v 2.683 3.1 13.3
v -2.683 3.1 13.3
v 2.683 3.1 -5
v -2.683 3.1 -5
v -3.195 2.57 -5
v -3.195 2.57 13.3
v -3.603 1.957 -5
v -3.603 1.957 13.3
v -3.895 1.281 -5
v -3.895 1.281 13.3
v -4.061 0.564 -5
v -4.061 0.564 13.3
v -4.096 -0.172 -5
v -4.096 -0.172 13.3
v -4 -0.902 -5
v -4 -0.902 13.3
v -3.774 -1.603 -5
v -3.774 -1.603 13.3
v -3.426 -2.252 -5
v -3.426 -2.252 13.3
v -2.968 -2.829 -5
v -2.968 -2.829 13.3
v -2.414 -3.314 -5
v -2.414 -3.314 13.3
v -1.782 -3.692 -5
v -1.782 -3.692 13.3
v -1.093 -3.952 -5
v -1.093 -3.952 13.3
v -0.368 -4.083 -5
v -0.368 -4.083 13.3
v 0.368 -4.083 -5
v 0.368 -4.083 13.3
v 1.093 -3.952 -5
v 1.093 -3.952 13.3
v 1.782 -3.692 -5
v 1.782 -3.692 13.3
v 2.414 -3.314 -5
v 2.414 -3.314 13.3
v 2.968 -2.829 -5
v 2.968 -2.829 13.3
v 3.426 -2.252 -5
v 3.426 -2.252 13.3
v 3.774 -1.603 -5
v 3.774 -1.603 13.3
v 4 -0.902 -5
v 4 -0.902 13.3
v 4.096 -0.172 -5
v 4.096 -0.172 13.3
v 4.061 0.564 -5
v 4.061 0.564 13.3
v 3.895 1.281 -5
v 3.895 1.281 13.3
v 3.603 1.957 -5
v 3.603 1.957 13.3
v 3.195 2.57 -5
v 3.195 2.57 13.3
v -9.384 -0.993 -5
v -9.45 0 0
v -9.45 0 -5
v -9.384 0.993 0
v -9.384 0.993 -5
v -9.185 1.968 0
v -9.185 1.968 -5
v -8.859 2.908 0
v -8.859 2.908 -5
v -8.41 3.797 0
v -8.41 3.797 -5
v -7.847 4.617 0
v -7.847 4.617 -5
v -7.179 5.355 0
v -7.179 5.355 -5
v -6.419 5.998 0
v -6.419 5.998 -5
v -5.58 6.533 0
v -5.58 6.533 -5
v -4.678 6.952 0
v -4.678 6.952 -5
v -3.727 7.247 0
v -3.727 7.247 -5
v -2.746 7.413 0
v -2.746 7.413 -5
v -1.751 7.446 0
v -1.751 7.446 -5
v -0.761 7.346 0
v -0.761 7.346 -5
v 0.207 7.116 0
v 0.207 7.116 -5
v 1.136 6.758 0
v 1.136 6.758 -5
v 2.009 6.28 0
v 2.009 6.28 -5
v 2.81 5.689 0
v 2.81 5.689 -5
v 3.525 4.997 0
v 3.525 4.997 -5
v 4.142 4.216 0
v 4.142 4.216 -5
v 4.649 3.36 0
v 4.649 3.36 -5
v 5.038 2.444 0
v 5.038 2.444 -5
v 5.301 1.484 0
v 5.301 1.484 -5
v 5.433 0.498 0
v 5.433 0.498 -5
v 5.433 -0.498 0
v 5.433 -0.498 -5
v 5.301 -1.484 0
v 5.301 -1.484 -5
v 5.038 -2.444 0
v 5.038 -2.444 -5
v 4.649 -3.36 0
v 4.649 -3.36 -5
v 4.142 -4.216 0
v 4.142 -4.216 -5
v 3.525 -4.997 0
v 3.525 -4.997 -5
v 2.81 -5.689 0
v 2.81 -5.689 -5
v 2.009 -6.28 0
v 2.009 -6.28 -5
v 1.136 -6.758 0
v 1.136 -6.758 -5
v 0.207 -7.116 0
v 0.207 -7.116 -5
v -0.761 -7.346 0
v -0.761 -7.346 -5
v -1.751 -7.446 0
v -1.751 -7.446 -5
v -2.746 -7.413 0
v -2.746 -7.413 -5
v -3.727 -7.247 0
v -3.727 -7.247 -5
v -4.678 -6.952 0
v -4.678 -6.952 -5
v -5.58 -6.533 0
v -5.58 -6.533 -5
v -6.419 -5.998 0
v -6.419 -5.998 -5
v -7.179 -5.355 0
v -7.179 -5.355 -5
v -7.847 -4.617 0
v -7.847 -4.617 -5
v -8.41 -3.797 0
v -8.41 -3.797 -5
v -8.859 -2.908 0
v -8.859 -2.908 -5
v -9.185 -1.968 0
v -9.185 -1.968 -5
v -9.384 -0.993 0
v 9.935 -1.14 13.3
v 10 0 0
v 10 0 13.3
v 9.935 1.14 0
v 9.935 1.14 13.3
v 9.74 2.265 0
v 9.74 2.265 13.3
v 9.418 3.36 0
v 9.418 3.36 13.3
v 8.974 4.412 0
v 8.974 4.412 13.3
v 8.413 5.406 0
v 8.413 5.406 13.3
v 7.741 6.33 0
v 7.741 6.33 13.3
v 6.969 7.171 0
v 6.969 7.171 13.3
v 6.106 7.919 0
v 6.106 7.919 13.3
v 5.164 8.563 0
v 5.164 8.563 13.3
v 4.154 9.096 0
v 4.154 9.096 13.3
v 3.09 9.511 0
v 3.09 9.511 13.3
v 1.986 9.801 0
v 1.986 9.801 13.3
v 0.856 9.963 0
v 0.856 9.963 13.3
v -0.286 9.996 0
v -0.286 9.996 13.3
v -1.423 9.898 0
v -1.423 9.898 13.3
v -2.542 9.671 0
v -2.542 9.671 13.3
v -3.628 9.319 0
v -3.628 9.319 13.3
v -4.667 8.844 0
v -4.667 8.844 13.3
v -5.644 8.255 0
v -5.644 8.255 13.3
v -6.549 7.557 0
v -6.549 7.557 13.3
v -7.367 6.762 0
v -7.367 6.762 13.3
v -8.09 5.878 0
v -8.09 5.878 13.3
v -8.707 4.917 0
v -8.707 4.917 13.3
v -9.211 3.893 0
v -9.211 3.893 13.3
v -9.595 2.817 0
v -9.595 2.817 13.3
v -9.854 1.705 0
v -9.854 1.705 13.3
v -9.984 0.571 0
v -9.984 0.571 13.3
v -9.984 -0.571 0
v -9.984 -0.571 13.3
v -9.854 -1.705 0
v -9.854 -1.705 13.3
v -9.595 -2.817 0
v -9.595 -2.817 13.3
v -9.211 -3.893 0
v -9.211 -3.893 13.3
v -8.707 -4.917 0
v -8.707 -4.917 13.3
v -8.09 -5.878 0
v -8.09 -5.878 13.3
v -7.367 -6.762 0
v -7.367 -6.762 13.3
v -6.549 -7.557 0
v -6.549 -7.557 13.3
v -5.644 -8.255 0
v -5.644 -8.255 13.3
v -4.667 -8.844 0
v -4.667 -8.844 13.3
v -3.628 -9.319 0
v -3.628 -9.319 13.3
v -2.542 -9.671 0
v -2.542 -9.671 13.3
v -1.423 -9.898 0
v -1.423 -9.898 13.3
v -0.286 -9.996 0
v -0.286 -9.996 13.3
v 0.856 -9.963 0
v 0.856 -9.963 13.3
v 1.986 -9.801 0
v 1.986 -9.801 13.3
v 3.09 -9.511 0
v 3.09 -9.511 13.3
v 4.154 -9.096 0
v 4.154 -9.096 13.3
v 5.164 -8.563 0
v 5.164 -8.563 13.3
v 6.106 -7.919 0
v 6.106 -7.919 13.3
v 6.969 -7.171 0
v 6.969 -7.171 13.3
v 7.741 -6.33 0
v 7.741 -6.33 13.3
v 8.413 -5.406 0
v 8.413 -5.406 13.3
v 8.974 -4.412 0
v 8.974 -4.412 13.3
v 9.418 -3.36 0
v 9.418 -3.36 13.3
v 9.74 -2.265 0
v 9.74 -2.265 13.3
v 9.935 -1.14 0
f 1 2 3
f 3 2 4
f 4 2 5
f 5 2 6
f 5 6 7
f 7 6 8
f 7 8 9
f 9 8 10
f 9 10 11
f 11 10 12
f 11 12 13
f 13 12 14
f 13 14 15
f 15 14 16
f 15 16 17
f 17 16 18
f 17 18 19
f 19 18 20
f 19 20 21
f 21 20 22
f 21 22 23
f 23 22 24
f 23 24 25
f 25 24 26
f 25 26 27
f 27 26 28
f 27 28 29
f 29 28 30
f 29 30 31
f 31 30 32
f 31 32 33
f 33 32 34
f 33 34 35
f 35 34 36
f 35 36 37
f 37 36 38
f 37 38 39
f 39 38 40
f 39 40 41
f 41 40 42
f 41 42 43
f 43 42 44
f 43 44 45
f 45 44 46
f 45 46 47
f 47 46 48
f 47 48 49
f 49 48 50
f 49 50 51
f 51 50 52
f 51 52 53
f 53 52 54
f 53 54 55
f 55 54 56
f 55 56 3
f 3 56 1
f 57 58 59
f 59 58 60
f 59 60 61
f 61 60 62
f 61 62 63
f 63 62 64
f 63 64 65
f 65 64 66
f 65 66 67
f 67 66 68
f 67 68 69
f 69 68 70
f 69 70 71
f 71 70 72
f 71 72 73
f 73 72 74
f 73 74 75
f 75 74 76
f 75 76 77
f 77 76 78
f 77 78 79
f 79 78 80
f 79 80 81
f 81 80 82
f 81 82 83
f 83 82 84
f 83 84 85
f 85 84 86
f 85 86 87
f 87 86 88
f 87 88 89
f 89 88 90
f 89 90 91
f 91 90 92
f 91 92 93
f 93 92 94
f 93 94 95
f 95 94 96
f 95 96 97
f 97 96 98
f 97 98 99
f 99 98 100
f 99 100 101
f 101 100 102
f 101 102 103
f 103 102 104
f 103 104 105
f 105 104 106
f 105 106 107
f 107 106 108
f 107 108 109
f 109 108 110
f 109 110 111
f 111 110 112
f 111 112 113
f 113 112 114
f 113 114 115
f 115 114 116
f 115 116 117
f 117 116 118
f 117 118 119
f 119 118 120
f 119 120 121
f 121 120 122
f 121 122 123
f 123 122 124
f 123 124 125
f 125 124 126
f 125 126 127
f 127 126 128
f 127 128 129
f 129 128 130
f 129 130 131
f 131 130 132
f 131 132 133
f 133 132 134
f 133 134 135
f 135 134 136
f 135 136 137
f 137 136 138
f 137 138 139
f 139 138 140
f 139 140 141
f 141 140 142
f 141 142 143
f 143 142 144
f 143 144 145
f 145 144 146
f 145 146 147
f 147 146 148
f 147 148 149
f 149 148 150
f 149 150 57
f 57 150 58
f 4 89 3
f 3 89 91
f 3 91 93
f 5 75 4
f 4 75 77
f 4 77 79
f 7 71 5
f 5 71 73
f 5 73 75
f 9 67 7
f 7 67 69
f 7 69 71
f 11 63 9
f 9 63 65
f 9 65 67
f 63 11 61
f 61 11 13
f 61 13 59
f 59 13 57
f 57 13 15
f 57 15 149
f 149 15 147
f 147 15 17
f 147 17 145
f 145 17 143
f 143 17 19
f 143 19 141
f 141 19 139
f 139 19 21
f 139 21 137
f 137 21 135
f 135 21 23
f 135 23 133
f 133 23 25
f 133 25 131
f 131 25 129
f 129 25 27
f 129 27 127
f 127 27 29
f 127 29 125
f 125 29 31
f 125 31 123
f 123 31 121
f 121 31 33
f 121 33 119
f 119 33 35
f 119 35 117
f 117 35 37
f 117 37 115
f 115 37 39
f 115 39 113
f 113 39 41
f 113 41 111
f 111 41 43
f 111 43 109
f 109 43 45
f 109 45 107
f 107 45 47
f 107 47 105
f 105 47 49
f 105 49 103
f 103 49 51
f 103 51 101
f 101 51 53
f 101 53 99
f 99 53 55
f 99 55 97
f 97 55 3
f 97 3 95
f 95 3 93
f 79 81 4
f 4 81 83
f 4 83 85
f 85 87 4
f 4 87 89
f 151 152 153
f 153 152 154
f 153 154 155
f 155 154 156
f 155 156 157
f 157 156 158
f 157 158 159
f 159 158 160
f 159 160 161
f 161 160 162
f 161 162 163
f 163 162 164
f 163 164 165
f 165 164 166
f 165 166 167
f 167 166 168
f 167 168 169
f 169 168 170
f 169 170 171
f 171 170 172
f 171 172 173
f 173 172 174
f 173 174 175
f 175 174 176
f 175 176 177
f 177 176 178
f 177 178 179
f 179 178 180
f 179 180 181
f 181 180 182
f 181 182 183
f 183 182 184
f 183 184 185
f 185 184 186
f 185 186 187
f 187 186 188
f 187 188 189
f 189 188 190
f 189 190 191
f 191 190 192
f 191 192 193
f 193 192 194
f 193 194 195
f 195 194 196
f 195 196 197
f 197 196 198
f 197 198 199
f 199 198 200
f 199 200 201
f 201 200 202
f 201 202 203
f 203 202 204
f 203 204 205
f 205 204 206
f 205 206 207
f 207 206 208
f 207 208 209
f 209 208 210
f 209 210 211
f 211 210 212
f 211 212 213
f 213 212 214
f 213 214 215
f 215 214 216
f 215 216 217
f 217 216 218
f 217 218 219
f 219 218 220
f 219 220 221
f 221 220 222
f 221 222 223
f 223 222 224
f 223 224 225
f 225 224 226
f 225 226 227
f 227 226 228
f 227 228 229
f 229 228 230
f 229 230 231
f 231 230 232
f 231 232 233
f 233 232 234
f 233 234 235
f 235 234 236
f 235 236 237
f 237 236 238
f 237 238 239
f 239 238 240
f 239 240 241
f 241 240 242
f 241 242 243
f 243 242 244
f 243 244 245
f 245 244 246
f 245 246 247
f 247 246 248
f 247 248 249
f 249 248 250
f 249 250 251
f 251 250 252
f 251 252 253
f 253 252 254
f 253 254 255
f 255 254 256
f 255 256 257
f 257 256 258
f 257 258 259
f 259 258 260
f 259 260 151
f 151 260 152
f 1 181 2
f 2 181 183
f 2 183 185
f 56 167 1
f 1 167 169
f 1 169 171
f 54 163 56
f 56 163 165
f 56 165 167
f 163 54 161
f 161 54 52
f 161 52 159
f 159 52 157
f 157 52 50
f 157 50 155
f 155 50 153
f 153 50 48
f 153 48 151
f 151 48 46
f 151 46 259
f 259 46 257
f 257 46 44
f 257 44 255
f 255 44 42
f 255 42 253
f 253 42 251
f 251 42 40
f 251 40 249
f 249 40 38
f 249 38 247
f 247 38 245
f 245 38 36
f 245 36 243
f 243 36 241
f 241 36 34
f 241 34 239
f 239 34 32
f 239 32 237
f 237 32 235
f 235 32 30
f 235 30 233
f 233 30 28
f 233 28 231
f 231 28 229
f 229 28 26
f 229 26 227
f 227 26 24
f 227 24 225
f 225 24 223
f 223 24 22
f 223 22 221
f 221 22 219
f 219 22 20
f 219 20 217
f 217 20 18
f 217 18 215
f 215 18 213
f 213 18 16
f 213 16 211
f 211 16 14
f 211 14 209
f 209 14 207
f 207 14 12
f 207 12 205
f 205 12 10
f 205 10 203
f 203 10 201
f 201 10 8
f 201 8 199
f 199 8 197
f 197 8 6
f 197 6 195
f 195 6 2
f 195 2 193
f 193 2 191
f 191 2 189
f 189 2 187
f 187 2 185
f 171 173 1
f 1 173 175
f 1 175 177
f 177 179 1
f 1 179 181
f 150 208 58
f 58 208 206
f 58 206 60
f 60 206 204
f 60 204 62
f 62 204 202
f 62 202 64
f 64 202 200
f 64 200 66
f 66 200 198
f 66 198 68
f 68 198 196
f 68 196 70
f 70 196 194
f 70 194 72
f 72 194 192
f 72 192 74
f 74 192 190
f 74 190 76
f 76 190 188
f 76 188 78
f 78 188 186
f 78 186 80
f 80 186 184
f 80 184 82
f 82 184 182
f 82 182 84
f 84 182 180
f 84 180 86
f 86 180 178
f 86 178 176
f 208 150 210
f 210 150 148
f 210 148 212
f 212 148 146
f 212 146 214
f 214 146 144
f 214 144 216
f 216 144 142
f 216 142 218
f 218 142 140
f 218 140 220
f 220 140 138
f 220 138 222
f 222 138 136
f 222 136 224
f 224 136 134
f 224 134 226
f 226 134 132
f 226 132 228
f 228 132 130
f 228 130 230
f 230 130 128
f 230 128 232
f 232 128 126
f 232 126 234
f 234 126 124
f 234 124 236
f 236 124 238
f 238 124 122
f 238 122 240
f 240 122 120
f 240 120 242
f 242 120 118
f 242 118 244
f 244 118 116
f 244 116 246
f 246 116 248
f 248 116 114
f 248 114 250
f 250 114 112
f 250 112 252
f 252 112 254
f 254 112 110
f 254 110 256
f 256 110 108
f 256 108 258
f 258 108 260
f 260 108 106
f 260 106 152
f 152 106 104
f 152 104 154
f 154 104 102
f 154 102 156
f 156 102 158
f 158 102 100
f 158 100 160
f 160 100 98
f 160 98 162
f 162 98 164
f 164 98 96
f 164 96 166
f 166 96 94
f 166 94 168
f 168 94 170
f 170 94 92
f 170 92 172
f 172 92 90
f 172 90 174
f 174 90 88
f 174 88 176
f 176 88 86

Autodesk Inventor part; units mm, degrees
ref_plane "YZ Plane" through (0, 0, 0) normal (1, 0, 0) x (0, 1, 0)
ref_plane "XZ Plane" through (0, 0, 0) normal (0, 1, 0) x (-1, 0, 0)
ref_plane "XY Plane" through (0, 0, 0) normal (0, 0, 1) x (1, 0, 0)
sketch "스케치1" plane through (0, 0, 0) normal (0, 0, 1) x (1, 0, 0)
  circle A0 centre (0, 0) radius 10
  circle A1 centre (0, 0) radius 4
  dimension "d0" = 20
  dimension "d1" = 8
extrude "돌출1" add sketch "스케치1" along normal blind 13.3
sketch "스케치2" plane through (0, 0, 0) normal (0, 0, -1) x (-1, 0, 0)
  line L0 (-2.6458, 3) -> (2.6458, 3)
  circle A0 centre (0, 0) radius 4 projected
  dimension "d4" = 3
extrude "돌출2" add sketch "스케치2" against normal up to surface (13.3 mm away) contours A0 L0 picked at (-0.6179, 3.1815)
sketch "스케치3" plane through (0, 0, 0) normal (0, 0, -1) x (-1, 0, 0)
  circle A0 centre (2, 0) radius 7.45
  line L0 (0, 0) -> (2, 0)
  arc A1 (-2.6458, 3) -> (2.6458, 3) centre (0, 0) ccw projected
  line L1 (-2.6458, 3) -> (2.6458, 3) projected
  dimension "d7" = 14.9
  dimension "d8" = 2
extrude "돌출3" add sketch "스케치3" along normal blind 5
sketch "스케치4" plane through (-2, 0, -5) normal (0, 0, -1) x (-1, 0, 0)
  arc A0 (-4.6458, 3) -> (0.6458, 3) centre (-2, 0) ccw projected
  line L0 (-4.6458, 3) -> (0.6458, 3) projected
  arc A1 (-4.6833, 3.1) -> (0.6833, 3.1) centre (-2, 0) ccw
  line L1 (-4.6833, 3.1) -> (0.6833, 3.1)
  dimension "d11" = 0.1
extrude "돌출4" cut sketch "스케치4" against normal up to surface (18.3 mm away) contours L0 A0 | L1 A1
properties part number "감속기어1 - 축"
